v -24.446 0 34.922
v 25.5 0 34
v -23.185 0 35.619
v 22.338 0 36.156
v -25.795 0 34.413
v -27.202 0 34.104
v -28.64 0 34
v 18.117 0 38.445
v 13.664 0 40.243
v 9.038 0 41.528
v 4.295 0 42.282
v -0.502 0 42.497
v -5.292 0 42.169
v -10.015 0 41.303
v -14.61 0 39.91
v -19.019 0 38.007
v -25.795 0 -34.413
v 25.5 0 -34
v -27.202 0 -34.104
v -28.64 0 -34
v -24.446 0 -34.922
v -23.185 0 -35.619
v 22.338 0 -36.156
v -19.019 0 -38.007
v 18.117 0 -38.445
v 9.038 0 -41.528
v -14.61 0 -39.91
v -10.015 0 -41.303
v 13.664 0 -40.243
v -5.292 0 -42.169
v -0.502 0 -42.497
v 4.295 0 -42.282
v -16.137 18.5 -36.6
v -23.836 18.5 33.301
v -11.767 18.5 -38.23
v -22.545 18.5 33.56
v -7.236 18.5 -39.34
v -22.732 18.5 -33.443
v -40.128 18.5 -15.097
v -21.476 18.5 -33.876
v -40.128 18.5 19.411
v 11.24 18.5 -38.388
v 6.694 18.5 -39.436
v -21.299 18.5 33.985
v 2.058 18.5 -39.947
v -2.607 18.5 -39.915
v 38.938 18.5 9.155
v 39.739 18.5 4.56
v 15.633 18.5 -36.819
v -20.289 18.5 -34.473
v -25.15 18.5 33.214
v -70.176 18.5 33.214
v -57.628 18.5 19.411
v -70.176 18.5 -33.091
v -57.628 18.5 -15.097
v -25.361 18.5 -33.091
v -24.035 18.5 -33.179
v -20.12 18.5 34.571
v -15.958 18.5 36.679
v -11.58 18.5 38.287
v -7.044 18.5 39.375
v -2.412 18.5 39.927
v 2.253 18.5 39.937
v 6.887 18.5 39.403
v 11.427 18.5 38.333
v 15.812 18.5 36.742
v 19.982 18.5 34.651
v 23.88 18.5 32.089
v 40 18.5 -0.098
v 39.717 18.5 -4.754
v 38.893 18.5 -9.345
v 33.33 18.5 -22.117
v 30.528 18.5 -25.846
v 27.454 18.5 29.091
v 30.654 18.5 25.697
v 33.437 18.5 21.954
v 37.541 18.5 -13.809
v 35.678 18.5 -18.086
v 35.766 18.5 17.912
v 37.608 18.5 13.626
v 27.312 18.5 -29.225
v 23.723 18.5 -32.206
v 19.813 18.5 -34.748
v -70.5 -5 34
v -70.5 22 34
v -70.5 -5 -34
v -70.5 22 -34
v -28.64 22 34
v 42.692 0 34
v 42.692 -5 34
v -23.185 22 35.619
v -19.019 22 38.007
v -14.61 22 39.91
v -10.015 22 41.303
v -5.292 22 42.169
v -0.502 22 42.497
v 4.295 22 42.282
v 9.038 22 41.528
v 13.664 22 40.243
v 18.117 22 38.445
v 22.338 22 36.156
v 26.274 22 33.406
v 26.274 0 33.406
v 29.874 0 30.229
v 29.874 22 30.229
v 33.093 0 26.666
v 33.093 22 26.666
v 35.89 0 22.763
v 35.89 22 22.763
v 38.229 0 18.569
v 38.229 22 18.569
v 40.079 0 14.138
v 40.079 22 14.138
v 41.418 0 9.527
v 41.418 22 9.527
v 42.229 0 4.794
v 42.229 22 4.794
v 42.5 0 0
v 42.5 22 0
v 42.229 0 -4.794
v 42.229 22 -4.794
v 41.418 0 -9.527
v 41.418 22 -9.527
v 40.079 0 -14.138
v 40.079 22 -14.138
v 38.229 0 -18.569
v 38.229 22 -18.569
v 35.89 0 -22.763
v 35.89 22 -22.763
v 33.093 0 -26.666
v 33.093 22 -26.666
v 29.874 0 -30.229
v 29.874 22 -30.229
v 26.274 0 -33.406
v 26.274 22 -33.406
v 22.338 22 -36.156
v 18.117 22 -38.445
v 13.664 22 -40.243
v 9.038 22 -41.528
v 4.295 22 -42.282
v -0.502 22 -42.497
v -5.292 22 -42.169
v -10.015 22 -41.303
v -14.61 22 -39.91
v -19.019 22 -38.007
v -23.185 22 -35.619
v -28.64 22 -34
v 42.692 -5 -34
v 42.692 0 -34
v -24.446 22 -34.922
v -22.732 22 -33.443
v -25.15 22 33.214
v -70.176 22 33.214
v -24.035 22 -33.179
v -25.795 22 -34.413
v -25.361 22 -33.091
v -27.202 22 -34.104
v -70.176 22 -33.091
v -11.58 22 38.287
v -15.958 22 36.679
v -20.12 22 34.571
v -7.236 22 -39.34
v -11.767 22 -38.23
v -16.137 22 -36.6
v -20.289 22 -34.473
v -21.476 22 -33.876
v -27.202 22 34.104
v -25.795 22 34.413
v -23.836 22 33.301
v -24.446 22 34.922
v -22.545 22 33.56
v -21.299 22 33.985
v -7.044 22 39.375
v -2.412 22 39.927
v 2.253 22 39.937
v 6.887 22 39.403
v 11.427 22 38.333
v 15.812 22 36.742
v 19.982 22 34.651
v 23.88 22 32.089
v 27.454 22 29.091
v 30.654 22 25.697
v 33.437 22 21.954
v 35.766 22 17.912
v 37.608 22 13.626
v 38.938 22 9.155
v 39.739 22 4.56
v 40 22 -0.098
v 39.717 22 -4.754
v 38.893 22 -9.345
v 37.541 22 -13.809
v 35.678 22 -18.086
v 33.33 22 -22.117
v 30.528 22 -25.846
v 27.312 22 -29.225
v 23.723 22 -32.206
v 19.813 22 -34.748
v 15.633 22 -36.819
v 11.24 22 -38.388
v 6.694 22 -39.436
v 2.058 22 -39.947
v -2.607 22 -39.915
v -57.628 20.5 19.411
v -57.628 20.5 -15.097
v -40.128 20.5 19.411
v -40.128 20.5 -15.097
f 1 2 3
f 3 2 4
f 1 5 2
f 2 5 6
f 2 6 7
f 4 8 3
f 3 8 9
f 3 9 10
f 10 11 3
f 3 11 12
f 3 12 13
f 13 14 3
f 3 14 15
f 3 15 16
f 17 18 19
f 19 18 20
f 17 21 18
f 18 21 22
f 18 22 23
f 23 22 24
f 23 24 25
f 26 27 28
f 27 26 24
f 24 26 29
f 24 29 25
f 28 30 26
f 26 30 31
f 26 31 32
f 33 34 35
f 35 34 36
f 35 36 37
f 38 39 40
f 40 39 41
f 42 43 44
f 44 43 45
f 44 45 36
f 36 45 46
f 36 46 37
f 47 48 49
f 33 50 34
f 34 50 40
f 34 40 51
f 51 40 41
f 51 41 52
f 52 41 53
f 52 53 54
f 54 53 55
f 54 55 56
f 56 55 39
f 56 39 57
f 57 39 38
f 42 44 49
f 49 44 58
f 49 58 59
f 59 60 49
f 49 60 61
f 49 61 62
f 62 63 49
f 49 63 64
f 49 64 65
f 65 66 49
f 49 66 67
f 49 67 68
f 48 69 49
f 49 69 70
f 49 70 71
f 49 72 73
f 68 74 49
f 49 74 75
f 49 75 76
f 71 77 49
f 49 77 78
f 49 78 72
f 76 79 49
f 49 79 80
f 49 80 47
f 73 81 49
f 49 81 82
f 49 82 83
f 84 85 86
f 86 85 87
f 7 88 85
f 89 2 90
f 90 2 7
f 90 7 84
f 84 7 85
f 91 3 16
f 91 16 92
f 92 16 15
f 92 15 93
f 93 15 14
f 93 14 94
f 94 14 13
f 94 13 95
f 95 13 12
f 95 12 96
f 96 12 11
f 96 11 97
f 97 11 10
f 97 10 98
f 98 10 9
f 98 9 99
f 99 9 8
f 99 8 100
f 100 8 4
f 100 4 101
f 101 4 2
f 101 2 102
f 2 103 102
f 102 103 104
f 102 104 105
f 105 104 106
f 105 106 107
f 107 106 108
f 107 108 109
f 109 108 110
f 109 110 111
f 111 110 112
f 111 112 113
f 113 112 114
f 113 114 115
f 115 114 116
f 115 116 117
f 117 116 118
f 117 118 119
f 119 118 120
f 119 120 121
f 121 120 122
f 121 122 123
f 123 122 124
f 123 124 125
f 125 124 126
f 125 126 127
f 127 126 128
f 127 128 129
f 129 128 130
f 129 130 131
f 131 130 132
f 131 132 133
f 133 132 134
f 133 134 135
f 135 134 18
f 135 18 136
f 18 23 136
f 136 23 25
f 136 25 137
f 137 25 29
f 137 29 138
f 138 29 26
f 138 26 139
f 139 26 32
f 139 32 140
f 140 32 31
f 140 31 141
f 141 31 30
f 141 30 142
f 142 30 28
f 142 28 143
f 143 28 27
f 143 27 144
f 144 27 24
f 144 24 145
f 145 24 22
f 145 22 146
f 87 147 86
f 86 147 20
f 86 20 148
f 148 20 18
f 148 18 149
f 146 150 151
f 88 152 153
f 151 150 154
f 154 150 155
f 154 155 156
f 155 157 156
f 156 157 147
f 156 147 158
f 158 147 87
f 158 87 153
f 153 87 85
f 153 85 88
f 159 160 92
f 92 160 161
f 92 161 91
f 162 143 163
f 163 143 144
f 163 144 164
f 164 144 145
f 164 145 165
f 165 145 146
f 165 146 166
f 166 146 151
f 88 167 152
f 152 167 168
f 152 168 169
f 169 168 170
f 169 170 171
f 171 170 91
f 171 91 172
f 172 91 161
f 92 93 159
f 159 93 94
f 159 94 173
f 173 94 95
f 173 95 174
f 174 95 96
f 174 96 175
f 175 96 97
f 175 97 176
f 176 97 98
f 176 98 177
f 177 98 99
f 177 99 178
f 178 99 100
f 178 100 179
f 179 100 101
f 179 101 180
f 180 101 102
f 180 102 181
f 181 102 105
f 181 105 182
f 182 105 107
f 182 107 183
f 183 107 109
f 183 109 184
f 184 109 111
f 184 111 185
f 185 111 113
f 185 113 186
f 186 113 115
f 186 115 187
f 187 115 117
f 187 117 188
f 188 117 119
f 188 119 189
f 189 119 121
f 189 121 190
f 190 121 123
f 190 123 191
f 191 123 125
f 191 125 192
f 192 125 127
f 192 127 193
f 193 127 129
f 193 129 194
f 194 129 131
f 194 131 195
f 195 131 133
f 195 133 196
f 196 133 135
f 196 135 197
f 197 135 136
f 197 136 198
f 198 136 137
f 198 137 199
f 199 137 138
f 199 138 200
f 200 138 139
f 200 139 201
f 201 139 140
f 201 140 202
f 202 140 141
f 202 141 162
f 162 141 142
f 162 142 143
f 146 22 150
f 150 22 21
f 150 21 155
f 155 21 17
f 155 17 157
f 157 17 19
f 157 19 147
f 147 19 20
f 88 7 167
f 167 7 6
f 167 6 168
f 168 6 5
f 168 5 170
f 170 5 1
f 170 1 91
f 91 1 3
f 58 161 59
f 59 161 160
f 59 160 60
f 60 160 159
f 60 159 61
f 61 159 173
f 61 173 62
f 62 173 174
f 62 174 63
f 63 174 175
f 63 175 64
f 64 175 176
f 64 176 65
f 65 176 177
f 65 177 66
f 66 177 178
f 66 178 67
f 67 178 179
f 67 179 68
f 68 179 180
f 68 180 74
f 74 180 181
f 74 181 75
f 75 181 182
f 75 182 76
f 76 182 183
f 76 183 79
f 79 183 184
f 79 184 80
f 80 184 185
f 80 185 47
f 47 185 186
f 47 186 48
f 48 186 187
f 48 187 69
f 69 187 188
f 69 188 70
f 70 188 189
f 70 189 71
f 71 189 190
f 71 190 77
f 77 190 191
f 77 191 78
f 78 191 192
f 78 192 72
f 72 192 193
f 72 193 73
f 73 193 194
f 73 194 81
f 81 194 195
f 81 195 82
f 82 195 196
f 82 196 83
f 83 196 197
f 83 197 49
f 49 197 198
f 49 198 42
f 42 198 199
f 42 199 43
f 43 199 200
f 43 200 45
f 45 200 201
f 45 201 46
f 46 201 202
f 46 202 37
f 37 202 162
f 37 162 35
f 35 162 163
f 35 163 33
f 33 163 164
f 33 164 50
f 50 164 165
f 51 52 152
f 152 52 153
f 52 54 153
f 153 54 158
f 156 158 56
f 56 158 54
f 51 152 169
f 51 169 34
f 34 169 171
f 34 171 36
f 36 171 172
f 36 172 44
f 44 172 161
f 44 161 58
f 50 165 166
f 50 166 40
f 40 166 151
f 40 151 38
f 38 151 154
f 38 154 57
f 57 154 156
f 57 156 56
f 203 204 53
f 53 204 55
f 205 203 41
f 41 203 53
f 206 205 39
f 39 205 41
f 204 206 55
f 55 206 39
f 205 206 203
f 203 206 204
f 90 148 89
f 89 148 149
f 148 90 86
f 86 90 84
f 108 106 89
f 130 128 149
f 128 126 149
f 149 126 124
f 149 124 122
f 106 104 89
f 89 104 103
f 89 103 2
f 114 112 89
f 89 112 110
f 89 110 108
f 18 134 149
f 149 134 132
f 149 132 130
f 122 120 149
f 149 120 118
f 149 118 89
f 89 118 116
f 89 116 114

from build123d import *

# Parameters (mm, degrees)
BOSS_EXTRUDE1_DEPTH = 22
FILLET1_R           = 10
CUT_EXTRUDE1_DEPTH  = 3.5
FILLET2_R           = 10
SKETCH4_W           = 17.500655667
SKETCH4_H           = 34.508335117
BOSS_EXTRUDE2_DEPTH = 2
SKETCH5_W           = 113.192264834
SKETCH5_H           = 68
BOSS_EXTRUDE3_DEPTH = 5


with BuildPart() as part:
    # Sketch1 → Boss-Extrude1 (new body)
    with BuildSketch(Plane(origin=(0, 0, 0), x_dir=(1, 0, 0), z_dir=(0, 1, 0))):
        with BuildLine():
            Line((-70.5, 34), (-25.5, 34))
            ThreePointArc((-25.5, 34), (42.5, 0), (-25.5, -34))
            Line((-25.5, -34), (-70.5, -34))
            Line((-70.5, -34), (-70.5, 34))
        make_face()
    extrude(amount=BOSS_EXTRUDE1_DEPTH)

    # Fillet1
    fillet1_edges = [part.edges().sort_by_distance(p)[0] for p in [
        (-25.5, 11, -34),
        (-25.5, 11, 34),
    ]]
    fillet(fillet1_edges, radius=FILLET1_R)

    # Sketch3 → Cut-Extrude1 (cut)
    with BuildSketch(Plane(origin=(0, 22, 0), x_dir=(1, 0, 0), z_dir=(0, 1, 0))):
        with BuildLine():
            Line((-22.471845342, 33.091028496), (-70.175642943, 33.091028496))
            Line((-70.175642943, 33.091028496), (-70.175642943, -33.21427255))
            Line((-70.175642943, -33.21427255), (-22.289282155, -33.21427255))
            ThreePointArc((-22.289282155, -33.21427255), (39.99984838, 0.110134479), (-22.471845342, 33.091028496))
        make_face()
    extrude(amount=-CUT_EXTRUDE1_DEPTH, mode=Mode.SUBTRACT)

    # Fillet2
    fillet2_edges = [part.edges().sort_by_distance(p)[0] for p in [
        (-22.471845342, 20.25, -33.091028496),
        (-22.289282155, 20.25, 33.21427255),
    ]]
    fillet(fillet2_edges, radius=FILLET2_R)

    # Sketch4 → Boss-Extrude2 (add)
    with BuildSketch(Plane(origin=(0, 18.5, 0), x_dir=(1, 0, 0), z_dir=(0, 1, 0))):
        with Locations((-48.878067279, -2.156770944)):
            Rectangle(SKETCH4_W, SKETCH4_H)
    extrude(amount=BOSS_EXTRUDE2_DEPTH)

    # Sketch5 → Boss-Extrude3 (add)
    with BuildSketch(Plane.XZ):
        with Locations((-13.903867583, 0)):
            Rectangle(SKETCH5_W, SKETCH5_H)
    extrude(amount=BOSS_EXTRUDE3_DEPTH)


solid = part.part
